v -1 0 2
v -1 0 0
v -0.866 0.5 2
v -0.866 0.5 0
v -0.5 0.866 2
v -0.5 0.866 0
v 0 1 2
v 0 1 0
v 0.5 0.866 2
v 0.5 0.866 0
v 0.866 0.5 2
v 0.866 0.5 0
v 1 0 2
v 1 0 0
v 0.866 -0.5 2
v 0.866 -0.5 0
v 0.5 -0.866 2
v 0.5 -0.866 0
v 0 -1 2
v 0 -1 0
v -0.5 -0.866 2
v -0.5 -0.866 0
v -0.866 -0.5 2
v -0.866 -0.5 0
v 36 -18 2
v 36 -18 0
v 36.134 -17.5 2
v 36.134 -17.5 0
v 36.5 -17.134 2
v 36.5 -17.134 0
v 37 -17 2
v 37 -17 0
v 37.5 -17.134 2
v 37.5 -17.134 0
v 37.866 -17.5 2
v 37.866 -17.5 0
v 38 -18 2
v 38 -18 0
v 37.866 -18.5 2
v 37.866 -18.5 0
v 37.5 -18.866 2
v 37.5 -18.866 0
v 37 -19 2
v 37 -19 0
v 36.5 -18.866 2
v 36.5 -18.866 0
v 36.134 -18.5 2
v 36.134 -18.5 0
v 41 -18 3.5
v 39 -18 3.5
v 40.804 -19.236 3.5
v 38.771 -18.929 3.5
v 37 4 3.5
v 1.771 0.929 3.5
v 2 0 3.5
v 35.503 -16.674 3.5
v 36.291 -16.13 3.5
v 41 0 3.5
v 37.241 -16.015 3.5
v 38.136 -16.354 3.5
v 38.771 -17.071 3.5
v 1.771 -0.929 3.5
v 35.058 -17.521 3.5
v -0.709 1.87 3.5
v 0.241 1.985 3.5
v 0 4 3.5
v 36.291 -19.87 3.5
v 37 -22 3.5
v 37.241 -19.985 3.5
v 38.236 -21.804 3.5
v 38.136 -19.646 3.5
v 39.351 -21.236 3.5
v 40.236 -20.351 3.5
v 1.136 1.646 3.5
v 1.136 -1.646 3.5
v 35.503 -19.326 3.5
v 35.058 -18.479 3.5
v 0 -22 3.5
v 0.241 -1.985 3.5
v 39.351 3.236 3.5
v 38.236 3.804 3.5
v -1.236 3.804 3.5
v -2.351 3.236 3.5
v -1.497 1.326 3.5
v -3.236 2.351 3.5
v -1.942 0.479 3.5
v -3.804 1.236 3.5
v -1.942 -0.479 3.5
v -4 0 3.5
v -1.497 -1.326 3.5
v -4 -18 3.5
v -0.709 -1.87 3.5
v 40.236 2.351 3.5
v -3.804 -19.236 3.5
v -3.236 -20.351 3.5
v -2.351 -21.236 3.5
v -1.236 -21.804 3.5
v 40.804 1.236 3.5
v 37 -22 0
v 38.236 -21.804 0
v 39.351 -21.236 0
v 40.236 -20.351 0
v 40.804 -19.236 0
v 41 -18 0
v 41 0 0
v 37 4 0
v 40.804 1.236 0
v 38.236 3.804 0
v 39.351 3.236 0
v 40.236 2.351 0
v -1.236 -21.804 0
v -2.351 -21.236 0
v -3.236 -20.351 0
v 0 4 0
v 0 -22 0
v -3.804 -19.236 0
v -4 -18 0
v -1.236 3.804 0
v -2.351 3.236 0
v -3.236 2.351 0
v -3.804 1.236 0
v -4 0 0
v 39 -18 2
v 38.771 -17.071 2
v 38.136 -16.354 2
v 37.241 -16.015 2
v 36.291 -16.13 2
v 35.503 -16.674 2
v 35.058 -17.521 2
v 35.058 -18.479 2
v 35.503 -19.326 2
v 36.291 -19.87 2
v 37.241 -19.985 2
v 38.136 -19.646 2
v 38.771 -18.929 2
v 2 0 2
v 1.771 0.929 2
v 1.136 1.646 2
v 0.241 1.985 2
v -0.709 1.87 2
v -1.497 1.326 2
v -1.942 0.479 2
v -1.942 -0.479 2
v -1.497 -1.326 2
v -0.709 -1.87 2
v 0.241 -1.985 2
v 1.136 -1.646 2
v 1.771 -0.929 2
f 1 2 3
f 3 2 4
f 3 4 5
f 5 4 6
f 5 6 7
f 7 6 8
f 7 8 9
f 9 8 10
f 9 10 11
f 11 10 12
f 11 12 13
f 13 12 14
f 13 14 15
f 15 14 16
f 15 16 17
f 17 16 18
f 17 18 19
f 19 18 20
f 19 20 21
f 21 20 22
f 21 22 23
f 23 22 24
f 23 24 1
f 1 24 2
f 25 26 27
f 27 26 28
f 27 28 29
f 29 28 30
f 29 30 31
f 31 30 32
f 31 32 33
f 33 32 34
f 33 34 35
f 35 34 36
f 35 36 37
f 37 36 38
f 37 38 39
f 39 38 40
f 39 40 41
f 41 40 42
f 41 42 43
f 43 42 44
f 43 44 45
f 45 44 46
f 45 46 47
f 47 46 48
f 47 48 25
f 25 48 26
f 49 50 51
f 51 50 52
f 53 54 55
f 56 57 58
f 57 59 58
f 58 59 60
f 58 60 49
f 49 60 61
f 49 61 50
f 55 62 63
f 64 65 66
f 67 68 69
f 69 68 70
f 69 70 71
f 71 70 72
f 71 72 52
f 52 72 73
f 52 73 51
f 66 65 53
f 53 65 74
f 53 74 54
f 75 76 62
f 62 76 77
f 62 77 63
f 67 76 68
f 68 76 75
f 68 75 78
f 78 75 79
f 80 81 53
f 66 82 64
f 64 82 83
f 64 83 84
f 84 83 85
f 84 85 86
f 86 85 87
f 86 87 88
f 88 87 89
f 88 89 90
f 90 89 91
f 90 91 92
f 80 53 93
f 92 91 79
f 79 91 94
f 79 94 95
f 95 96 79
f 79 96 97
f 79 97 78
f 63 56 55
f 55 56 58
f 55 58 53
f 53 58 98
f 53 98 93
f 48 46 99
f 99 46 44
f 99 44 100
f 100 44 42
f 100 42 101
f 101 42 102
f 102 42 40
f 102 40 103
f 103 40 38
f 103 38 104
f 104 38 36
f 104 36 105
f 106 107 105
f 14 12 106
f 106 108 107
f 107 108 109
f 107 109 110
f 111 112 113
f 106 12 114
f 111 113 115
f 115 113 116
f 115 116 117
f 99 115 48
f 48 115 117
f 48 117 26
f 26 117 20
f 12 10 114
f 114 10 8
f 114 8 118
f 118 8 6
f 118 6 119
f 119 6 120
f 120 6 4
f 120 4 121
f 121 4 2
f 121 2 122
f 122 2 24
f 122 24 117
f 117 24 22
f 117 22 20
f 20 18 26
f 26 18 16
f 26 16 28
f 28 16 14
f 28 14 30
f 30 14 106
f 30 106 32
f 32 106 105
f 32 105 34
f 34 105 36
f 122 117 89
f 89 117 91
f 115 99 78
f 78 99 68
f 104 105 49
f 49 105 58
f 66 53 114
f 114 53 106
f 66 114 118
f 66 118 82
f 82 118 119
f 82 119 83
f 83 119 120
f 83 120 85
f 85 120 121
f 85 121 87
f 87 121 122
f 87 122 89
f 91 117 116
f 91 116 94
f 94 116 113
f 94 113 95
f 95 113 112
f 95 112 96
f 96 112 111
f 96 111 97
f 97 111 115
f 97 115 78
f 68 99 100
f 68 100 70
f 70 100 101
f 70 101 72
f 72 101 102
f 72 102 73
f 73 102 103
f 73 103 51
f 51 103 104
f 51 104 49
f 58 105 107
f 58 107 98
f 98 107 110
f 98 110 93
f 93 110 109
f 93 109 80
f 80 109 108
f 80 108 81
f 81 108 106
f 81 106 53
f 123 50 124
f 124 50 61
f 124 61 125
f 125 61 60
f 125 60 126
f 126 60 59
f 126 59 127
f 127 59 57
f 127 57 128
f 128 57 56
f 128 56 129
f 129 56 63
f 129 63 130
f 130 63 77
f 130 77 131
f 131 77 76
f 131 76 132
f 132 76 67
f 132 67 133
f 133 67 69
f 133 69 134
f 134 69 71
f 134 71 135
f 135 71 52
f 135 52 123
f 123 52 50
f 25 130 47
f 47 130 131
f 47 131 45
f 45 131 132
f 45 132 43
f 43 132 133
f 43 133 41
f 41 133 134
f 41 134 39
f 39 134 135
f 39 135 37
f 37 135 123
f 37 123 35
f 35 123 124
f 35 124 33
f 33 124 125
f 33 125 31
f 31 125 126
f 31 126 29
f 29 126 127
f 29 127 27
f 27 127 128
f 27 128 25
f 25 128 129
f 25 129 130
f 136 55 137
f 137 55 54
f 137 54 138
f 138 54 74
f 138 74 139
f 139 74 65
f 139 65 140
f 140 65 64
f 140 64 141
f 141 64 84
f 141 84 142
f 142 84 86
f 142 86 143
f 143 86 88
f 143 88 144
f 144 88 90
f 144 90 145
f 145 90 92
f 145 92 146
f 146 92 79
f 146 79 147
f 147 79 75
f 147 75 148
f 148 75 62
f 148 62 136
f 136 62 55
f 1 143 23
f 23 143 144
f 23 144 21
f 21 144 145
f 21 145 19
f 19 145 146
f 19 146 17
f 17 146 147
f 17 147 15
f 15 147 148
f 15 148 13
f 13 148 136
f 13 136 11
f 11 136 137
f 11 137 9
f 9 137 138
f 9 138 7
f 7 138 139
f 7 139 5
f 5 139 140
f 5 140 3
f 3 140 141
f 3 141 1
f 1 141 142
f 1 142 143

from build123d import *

# Parameters (mm, degrees)
SKETCH1_W           = 45
SKETCH1_H           = 26
SKETCH1_R           = 1
BOSS_EXTRUDE1_DEPTH = 3.5
FILLET1_R           = 4
SKETCH2_R           = 2
CUT_EXTRUDE1_DEPTH  = 1.5


with BuildPart() as part:
    # Sketch1 → Boss-Extrude1 (new body)
    with BuildSketch(Plane.XY):
        with Locations((18.5, -9)):
            Rectangle(SKETCH1_W, SKETCH1_H)
        Circle(SKETCH1_R, mode=Mode.SUBTRACT)
        with Locations((37, -18)):
            Circle(SKETCH1_R, mode=Mode.SUBTRACT)
    extrude(amount=BOSS_EXTRUDE1_DEPTH)

    # Fillet1
    fillet1_edges = [part.edges().sort_by_distance(p)[0] for p in [
        (-4, 4, 1.75),
        (41, 4, 1.75),
        (41, -22, 1.75),
        (-4, -22, 1.75),
    ]]
    fillet(fillet1_edges, radius=FILLET1_R)

    # Sketch2 → Cut-Extrude1 (cut)
    with BuildSketch(Plane.XY.offset(3.5)):
        with Locations((37, -18)):
            Circle(SKETCH2_R)
        Circle(SKETCH2_R)
    extrude(amount=-CUT_EXTRUDE1_DEPTH, mode=Mode.SUBTRACT)


solid = part.part
